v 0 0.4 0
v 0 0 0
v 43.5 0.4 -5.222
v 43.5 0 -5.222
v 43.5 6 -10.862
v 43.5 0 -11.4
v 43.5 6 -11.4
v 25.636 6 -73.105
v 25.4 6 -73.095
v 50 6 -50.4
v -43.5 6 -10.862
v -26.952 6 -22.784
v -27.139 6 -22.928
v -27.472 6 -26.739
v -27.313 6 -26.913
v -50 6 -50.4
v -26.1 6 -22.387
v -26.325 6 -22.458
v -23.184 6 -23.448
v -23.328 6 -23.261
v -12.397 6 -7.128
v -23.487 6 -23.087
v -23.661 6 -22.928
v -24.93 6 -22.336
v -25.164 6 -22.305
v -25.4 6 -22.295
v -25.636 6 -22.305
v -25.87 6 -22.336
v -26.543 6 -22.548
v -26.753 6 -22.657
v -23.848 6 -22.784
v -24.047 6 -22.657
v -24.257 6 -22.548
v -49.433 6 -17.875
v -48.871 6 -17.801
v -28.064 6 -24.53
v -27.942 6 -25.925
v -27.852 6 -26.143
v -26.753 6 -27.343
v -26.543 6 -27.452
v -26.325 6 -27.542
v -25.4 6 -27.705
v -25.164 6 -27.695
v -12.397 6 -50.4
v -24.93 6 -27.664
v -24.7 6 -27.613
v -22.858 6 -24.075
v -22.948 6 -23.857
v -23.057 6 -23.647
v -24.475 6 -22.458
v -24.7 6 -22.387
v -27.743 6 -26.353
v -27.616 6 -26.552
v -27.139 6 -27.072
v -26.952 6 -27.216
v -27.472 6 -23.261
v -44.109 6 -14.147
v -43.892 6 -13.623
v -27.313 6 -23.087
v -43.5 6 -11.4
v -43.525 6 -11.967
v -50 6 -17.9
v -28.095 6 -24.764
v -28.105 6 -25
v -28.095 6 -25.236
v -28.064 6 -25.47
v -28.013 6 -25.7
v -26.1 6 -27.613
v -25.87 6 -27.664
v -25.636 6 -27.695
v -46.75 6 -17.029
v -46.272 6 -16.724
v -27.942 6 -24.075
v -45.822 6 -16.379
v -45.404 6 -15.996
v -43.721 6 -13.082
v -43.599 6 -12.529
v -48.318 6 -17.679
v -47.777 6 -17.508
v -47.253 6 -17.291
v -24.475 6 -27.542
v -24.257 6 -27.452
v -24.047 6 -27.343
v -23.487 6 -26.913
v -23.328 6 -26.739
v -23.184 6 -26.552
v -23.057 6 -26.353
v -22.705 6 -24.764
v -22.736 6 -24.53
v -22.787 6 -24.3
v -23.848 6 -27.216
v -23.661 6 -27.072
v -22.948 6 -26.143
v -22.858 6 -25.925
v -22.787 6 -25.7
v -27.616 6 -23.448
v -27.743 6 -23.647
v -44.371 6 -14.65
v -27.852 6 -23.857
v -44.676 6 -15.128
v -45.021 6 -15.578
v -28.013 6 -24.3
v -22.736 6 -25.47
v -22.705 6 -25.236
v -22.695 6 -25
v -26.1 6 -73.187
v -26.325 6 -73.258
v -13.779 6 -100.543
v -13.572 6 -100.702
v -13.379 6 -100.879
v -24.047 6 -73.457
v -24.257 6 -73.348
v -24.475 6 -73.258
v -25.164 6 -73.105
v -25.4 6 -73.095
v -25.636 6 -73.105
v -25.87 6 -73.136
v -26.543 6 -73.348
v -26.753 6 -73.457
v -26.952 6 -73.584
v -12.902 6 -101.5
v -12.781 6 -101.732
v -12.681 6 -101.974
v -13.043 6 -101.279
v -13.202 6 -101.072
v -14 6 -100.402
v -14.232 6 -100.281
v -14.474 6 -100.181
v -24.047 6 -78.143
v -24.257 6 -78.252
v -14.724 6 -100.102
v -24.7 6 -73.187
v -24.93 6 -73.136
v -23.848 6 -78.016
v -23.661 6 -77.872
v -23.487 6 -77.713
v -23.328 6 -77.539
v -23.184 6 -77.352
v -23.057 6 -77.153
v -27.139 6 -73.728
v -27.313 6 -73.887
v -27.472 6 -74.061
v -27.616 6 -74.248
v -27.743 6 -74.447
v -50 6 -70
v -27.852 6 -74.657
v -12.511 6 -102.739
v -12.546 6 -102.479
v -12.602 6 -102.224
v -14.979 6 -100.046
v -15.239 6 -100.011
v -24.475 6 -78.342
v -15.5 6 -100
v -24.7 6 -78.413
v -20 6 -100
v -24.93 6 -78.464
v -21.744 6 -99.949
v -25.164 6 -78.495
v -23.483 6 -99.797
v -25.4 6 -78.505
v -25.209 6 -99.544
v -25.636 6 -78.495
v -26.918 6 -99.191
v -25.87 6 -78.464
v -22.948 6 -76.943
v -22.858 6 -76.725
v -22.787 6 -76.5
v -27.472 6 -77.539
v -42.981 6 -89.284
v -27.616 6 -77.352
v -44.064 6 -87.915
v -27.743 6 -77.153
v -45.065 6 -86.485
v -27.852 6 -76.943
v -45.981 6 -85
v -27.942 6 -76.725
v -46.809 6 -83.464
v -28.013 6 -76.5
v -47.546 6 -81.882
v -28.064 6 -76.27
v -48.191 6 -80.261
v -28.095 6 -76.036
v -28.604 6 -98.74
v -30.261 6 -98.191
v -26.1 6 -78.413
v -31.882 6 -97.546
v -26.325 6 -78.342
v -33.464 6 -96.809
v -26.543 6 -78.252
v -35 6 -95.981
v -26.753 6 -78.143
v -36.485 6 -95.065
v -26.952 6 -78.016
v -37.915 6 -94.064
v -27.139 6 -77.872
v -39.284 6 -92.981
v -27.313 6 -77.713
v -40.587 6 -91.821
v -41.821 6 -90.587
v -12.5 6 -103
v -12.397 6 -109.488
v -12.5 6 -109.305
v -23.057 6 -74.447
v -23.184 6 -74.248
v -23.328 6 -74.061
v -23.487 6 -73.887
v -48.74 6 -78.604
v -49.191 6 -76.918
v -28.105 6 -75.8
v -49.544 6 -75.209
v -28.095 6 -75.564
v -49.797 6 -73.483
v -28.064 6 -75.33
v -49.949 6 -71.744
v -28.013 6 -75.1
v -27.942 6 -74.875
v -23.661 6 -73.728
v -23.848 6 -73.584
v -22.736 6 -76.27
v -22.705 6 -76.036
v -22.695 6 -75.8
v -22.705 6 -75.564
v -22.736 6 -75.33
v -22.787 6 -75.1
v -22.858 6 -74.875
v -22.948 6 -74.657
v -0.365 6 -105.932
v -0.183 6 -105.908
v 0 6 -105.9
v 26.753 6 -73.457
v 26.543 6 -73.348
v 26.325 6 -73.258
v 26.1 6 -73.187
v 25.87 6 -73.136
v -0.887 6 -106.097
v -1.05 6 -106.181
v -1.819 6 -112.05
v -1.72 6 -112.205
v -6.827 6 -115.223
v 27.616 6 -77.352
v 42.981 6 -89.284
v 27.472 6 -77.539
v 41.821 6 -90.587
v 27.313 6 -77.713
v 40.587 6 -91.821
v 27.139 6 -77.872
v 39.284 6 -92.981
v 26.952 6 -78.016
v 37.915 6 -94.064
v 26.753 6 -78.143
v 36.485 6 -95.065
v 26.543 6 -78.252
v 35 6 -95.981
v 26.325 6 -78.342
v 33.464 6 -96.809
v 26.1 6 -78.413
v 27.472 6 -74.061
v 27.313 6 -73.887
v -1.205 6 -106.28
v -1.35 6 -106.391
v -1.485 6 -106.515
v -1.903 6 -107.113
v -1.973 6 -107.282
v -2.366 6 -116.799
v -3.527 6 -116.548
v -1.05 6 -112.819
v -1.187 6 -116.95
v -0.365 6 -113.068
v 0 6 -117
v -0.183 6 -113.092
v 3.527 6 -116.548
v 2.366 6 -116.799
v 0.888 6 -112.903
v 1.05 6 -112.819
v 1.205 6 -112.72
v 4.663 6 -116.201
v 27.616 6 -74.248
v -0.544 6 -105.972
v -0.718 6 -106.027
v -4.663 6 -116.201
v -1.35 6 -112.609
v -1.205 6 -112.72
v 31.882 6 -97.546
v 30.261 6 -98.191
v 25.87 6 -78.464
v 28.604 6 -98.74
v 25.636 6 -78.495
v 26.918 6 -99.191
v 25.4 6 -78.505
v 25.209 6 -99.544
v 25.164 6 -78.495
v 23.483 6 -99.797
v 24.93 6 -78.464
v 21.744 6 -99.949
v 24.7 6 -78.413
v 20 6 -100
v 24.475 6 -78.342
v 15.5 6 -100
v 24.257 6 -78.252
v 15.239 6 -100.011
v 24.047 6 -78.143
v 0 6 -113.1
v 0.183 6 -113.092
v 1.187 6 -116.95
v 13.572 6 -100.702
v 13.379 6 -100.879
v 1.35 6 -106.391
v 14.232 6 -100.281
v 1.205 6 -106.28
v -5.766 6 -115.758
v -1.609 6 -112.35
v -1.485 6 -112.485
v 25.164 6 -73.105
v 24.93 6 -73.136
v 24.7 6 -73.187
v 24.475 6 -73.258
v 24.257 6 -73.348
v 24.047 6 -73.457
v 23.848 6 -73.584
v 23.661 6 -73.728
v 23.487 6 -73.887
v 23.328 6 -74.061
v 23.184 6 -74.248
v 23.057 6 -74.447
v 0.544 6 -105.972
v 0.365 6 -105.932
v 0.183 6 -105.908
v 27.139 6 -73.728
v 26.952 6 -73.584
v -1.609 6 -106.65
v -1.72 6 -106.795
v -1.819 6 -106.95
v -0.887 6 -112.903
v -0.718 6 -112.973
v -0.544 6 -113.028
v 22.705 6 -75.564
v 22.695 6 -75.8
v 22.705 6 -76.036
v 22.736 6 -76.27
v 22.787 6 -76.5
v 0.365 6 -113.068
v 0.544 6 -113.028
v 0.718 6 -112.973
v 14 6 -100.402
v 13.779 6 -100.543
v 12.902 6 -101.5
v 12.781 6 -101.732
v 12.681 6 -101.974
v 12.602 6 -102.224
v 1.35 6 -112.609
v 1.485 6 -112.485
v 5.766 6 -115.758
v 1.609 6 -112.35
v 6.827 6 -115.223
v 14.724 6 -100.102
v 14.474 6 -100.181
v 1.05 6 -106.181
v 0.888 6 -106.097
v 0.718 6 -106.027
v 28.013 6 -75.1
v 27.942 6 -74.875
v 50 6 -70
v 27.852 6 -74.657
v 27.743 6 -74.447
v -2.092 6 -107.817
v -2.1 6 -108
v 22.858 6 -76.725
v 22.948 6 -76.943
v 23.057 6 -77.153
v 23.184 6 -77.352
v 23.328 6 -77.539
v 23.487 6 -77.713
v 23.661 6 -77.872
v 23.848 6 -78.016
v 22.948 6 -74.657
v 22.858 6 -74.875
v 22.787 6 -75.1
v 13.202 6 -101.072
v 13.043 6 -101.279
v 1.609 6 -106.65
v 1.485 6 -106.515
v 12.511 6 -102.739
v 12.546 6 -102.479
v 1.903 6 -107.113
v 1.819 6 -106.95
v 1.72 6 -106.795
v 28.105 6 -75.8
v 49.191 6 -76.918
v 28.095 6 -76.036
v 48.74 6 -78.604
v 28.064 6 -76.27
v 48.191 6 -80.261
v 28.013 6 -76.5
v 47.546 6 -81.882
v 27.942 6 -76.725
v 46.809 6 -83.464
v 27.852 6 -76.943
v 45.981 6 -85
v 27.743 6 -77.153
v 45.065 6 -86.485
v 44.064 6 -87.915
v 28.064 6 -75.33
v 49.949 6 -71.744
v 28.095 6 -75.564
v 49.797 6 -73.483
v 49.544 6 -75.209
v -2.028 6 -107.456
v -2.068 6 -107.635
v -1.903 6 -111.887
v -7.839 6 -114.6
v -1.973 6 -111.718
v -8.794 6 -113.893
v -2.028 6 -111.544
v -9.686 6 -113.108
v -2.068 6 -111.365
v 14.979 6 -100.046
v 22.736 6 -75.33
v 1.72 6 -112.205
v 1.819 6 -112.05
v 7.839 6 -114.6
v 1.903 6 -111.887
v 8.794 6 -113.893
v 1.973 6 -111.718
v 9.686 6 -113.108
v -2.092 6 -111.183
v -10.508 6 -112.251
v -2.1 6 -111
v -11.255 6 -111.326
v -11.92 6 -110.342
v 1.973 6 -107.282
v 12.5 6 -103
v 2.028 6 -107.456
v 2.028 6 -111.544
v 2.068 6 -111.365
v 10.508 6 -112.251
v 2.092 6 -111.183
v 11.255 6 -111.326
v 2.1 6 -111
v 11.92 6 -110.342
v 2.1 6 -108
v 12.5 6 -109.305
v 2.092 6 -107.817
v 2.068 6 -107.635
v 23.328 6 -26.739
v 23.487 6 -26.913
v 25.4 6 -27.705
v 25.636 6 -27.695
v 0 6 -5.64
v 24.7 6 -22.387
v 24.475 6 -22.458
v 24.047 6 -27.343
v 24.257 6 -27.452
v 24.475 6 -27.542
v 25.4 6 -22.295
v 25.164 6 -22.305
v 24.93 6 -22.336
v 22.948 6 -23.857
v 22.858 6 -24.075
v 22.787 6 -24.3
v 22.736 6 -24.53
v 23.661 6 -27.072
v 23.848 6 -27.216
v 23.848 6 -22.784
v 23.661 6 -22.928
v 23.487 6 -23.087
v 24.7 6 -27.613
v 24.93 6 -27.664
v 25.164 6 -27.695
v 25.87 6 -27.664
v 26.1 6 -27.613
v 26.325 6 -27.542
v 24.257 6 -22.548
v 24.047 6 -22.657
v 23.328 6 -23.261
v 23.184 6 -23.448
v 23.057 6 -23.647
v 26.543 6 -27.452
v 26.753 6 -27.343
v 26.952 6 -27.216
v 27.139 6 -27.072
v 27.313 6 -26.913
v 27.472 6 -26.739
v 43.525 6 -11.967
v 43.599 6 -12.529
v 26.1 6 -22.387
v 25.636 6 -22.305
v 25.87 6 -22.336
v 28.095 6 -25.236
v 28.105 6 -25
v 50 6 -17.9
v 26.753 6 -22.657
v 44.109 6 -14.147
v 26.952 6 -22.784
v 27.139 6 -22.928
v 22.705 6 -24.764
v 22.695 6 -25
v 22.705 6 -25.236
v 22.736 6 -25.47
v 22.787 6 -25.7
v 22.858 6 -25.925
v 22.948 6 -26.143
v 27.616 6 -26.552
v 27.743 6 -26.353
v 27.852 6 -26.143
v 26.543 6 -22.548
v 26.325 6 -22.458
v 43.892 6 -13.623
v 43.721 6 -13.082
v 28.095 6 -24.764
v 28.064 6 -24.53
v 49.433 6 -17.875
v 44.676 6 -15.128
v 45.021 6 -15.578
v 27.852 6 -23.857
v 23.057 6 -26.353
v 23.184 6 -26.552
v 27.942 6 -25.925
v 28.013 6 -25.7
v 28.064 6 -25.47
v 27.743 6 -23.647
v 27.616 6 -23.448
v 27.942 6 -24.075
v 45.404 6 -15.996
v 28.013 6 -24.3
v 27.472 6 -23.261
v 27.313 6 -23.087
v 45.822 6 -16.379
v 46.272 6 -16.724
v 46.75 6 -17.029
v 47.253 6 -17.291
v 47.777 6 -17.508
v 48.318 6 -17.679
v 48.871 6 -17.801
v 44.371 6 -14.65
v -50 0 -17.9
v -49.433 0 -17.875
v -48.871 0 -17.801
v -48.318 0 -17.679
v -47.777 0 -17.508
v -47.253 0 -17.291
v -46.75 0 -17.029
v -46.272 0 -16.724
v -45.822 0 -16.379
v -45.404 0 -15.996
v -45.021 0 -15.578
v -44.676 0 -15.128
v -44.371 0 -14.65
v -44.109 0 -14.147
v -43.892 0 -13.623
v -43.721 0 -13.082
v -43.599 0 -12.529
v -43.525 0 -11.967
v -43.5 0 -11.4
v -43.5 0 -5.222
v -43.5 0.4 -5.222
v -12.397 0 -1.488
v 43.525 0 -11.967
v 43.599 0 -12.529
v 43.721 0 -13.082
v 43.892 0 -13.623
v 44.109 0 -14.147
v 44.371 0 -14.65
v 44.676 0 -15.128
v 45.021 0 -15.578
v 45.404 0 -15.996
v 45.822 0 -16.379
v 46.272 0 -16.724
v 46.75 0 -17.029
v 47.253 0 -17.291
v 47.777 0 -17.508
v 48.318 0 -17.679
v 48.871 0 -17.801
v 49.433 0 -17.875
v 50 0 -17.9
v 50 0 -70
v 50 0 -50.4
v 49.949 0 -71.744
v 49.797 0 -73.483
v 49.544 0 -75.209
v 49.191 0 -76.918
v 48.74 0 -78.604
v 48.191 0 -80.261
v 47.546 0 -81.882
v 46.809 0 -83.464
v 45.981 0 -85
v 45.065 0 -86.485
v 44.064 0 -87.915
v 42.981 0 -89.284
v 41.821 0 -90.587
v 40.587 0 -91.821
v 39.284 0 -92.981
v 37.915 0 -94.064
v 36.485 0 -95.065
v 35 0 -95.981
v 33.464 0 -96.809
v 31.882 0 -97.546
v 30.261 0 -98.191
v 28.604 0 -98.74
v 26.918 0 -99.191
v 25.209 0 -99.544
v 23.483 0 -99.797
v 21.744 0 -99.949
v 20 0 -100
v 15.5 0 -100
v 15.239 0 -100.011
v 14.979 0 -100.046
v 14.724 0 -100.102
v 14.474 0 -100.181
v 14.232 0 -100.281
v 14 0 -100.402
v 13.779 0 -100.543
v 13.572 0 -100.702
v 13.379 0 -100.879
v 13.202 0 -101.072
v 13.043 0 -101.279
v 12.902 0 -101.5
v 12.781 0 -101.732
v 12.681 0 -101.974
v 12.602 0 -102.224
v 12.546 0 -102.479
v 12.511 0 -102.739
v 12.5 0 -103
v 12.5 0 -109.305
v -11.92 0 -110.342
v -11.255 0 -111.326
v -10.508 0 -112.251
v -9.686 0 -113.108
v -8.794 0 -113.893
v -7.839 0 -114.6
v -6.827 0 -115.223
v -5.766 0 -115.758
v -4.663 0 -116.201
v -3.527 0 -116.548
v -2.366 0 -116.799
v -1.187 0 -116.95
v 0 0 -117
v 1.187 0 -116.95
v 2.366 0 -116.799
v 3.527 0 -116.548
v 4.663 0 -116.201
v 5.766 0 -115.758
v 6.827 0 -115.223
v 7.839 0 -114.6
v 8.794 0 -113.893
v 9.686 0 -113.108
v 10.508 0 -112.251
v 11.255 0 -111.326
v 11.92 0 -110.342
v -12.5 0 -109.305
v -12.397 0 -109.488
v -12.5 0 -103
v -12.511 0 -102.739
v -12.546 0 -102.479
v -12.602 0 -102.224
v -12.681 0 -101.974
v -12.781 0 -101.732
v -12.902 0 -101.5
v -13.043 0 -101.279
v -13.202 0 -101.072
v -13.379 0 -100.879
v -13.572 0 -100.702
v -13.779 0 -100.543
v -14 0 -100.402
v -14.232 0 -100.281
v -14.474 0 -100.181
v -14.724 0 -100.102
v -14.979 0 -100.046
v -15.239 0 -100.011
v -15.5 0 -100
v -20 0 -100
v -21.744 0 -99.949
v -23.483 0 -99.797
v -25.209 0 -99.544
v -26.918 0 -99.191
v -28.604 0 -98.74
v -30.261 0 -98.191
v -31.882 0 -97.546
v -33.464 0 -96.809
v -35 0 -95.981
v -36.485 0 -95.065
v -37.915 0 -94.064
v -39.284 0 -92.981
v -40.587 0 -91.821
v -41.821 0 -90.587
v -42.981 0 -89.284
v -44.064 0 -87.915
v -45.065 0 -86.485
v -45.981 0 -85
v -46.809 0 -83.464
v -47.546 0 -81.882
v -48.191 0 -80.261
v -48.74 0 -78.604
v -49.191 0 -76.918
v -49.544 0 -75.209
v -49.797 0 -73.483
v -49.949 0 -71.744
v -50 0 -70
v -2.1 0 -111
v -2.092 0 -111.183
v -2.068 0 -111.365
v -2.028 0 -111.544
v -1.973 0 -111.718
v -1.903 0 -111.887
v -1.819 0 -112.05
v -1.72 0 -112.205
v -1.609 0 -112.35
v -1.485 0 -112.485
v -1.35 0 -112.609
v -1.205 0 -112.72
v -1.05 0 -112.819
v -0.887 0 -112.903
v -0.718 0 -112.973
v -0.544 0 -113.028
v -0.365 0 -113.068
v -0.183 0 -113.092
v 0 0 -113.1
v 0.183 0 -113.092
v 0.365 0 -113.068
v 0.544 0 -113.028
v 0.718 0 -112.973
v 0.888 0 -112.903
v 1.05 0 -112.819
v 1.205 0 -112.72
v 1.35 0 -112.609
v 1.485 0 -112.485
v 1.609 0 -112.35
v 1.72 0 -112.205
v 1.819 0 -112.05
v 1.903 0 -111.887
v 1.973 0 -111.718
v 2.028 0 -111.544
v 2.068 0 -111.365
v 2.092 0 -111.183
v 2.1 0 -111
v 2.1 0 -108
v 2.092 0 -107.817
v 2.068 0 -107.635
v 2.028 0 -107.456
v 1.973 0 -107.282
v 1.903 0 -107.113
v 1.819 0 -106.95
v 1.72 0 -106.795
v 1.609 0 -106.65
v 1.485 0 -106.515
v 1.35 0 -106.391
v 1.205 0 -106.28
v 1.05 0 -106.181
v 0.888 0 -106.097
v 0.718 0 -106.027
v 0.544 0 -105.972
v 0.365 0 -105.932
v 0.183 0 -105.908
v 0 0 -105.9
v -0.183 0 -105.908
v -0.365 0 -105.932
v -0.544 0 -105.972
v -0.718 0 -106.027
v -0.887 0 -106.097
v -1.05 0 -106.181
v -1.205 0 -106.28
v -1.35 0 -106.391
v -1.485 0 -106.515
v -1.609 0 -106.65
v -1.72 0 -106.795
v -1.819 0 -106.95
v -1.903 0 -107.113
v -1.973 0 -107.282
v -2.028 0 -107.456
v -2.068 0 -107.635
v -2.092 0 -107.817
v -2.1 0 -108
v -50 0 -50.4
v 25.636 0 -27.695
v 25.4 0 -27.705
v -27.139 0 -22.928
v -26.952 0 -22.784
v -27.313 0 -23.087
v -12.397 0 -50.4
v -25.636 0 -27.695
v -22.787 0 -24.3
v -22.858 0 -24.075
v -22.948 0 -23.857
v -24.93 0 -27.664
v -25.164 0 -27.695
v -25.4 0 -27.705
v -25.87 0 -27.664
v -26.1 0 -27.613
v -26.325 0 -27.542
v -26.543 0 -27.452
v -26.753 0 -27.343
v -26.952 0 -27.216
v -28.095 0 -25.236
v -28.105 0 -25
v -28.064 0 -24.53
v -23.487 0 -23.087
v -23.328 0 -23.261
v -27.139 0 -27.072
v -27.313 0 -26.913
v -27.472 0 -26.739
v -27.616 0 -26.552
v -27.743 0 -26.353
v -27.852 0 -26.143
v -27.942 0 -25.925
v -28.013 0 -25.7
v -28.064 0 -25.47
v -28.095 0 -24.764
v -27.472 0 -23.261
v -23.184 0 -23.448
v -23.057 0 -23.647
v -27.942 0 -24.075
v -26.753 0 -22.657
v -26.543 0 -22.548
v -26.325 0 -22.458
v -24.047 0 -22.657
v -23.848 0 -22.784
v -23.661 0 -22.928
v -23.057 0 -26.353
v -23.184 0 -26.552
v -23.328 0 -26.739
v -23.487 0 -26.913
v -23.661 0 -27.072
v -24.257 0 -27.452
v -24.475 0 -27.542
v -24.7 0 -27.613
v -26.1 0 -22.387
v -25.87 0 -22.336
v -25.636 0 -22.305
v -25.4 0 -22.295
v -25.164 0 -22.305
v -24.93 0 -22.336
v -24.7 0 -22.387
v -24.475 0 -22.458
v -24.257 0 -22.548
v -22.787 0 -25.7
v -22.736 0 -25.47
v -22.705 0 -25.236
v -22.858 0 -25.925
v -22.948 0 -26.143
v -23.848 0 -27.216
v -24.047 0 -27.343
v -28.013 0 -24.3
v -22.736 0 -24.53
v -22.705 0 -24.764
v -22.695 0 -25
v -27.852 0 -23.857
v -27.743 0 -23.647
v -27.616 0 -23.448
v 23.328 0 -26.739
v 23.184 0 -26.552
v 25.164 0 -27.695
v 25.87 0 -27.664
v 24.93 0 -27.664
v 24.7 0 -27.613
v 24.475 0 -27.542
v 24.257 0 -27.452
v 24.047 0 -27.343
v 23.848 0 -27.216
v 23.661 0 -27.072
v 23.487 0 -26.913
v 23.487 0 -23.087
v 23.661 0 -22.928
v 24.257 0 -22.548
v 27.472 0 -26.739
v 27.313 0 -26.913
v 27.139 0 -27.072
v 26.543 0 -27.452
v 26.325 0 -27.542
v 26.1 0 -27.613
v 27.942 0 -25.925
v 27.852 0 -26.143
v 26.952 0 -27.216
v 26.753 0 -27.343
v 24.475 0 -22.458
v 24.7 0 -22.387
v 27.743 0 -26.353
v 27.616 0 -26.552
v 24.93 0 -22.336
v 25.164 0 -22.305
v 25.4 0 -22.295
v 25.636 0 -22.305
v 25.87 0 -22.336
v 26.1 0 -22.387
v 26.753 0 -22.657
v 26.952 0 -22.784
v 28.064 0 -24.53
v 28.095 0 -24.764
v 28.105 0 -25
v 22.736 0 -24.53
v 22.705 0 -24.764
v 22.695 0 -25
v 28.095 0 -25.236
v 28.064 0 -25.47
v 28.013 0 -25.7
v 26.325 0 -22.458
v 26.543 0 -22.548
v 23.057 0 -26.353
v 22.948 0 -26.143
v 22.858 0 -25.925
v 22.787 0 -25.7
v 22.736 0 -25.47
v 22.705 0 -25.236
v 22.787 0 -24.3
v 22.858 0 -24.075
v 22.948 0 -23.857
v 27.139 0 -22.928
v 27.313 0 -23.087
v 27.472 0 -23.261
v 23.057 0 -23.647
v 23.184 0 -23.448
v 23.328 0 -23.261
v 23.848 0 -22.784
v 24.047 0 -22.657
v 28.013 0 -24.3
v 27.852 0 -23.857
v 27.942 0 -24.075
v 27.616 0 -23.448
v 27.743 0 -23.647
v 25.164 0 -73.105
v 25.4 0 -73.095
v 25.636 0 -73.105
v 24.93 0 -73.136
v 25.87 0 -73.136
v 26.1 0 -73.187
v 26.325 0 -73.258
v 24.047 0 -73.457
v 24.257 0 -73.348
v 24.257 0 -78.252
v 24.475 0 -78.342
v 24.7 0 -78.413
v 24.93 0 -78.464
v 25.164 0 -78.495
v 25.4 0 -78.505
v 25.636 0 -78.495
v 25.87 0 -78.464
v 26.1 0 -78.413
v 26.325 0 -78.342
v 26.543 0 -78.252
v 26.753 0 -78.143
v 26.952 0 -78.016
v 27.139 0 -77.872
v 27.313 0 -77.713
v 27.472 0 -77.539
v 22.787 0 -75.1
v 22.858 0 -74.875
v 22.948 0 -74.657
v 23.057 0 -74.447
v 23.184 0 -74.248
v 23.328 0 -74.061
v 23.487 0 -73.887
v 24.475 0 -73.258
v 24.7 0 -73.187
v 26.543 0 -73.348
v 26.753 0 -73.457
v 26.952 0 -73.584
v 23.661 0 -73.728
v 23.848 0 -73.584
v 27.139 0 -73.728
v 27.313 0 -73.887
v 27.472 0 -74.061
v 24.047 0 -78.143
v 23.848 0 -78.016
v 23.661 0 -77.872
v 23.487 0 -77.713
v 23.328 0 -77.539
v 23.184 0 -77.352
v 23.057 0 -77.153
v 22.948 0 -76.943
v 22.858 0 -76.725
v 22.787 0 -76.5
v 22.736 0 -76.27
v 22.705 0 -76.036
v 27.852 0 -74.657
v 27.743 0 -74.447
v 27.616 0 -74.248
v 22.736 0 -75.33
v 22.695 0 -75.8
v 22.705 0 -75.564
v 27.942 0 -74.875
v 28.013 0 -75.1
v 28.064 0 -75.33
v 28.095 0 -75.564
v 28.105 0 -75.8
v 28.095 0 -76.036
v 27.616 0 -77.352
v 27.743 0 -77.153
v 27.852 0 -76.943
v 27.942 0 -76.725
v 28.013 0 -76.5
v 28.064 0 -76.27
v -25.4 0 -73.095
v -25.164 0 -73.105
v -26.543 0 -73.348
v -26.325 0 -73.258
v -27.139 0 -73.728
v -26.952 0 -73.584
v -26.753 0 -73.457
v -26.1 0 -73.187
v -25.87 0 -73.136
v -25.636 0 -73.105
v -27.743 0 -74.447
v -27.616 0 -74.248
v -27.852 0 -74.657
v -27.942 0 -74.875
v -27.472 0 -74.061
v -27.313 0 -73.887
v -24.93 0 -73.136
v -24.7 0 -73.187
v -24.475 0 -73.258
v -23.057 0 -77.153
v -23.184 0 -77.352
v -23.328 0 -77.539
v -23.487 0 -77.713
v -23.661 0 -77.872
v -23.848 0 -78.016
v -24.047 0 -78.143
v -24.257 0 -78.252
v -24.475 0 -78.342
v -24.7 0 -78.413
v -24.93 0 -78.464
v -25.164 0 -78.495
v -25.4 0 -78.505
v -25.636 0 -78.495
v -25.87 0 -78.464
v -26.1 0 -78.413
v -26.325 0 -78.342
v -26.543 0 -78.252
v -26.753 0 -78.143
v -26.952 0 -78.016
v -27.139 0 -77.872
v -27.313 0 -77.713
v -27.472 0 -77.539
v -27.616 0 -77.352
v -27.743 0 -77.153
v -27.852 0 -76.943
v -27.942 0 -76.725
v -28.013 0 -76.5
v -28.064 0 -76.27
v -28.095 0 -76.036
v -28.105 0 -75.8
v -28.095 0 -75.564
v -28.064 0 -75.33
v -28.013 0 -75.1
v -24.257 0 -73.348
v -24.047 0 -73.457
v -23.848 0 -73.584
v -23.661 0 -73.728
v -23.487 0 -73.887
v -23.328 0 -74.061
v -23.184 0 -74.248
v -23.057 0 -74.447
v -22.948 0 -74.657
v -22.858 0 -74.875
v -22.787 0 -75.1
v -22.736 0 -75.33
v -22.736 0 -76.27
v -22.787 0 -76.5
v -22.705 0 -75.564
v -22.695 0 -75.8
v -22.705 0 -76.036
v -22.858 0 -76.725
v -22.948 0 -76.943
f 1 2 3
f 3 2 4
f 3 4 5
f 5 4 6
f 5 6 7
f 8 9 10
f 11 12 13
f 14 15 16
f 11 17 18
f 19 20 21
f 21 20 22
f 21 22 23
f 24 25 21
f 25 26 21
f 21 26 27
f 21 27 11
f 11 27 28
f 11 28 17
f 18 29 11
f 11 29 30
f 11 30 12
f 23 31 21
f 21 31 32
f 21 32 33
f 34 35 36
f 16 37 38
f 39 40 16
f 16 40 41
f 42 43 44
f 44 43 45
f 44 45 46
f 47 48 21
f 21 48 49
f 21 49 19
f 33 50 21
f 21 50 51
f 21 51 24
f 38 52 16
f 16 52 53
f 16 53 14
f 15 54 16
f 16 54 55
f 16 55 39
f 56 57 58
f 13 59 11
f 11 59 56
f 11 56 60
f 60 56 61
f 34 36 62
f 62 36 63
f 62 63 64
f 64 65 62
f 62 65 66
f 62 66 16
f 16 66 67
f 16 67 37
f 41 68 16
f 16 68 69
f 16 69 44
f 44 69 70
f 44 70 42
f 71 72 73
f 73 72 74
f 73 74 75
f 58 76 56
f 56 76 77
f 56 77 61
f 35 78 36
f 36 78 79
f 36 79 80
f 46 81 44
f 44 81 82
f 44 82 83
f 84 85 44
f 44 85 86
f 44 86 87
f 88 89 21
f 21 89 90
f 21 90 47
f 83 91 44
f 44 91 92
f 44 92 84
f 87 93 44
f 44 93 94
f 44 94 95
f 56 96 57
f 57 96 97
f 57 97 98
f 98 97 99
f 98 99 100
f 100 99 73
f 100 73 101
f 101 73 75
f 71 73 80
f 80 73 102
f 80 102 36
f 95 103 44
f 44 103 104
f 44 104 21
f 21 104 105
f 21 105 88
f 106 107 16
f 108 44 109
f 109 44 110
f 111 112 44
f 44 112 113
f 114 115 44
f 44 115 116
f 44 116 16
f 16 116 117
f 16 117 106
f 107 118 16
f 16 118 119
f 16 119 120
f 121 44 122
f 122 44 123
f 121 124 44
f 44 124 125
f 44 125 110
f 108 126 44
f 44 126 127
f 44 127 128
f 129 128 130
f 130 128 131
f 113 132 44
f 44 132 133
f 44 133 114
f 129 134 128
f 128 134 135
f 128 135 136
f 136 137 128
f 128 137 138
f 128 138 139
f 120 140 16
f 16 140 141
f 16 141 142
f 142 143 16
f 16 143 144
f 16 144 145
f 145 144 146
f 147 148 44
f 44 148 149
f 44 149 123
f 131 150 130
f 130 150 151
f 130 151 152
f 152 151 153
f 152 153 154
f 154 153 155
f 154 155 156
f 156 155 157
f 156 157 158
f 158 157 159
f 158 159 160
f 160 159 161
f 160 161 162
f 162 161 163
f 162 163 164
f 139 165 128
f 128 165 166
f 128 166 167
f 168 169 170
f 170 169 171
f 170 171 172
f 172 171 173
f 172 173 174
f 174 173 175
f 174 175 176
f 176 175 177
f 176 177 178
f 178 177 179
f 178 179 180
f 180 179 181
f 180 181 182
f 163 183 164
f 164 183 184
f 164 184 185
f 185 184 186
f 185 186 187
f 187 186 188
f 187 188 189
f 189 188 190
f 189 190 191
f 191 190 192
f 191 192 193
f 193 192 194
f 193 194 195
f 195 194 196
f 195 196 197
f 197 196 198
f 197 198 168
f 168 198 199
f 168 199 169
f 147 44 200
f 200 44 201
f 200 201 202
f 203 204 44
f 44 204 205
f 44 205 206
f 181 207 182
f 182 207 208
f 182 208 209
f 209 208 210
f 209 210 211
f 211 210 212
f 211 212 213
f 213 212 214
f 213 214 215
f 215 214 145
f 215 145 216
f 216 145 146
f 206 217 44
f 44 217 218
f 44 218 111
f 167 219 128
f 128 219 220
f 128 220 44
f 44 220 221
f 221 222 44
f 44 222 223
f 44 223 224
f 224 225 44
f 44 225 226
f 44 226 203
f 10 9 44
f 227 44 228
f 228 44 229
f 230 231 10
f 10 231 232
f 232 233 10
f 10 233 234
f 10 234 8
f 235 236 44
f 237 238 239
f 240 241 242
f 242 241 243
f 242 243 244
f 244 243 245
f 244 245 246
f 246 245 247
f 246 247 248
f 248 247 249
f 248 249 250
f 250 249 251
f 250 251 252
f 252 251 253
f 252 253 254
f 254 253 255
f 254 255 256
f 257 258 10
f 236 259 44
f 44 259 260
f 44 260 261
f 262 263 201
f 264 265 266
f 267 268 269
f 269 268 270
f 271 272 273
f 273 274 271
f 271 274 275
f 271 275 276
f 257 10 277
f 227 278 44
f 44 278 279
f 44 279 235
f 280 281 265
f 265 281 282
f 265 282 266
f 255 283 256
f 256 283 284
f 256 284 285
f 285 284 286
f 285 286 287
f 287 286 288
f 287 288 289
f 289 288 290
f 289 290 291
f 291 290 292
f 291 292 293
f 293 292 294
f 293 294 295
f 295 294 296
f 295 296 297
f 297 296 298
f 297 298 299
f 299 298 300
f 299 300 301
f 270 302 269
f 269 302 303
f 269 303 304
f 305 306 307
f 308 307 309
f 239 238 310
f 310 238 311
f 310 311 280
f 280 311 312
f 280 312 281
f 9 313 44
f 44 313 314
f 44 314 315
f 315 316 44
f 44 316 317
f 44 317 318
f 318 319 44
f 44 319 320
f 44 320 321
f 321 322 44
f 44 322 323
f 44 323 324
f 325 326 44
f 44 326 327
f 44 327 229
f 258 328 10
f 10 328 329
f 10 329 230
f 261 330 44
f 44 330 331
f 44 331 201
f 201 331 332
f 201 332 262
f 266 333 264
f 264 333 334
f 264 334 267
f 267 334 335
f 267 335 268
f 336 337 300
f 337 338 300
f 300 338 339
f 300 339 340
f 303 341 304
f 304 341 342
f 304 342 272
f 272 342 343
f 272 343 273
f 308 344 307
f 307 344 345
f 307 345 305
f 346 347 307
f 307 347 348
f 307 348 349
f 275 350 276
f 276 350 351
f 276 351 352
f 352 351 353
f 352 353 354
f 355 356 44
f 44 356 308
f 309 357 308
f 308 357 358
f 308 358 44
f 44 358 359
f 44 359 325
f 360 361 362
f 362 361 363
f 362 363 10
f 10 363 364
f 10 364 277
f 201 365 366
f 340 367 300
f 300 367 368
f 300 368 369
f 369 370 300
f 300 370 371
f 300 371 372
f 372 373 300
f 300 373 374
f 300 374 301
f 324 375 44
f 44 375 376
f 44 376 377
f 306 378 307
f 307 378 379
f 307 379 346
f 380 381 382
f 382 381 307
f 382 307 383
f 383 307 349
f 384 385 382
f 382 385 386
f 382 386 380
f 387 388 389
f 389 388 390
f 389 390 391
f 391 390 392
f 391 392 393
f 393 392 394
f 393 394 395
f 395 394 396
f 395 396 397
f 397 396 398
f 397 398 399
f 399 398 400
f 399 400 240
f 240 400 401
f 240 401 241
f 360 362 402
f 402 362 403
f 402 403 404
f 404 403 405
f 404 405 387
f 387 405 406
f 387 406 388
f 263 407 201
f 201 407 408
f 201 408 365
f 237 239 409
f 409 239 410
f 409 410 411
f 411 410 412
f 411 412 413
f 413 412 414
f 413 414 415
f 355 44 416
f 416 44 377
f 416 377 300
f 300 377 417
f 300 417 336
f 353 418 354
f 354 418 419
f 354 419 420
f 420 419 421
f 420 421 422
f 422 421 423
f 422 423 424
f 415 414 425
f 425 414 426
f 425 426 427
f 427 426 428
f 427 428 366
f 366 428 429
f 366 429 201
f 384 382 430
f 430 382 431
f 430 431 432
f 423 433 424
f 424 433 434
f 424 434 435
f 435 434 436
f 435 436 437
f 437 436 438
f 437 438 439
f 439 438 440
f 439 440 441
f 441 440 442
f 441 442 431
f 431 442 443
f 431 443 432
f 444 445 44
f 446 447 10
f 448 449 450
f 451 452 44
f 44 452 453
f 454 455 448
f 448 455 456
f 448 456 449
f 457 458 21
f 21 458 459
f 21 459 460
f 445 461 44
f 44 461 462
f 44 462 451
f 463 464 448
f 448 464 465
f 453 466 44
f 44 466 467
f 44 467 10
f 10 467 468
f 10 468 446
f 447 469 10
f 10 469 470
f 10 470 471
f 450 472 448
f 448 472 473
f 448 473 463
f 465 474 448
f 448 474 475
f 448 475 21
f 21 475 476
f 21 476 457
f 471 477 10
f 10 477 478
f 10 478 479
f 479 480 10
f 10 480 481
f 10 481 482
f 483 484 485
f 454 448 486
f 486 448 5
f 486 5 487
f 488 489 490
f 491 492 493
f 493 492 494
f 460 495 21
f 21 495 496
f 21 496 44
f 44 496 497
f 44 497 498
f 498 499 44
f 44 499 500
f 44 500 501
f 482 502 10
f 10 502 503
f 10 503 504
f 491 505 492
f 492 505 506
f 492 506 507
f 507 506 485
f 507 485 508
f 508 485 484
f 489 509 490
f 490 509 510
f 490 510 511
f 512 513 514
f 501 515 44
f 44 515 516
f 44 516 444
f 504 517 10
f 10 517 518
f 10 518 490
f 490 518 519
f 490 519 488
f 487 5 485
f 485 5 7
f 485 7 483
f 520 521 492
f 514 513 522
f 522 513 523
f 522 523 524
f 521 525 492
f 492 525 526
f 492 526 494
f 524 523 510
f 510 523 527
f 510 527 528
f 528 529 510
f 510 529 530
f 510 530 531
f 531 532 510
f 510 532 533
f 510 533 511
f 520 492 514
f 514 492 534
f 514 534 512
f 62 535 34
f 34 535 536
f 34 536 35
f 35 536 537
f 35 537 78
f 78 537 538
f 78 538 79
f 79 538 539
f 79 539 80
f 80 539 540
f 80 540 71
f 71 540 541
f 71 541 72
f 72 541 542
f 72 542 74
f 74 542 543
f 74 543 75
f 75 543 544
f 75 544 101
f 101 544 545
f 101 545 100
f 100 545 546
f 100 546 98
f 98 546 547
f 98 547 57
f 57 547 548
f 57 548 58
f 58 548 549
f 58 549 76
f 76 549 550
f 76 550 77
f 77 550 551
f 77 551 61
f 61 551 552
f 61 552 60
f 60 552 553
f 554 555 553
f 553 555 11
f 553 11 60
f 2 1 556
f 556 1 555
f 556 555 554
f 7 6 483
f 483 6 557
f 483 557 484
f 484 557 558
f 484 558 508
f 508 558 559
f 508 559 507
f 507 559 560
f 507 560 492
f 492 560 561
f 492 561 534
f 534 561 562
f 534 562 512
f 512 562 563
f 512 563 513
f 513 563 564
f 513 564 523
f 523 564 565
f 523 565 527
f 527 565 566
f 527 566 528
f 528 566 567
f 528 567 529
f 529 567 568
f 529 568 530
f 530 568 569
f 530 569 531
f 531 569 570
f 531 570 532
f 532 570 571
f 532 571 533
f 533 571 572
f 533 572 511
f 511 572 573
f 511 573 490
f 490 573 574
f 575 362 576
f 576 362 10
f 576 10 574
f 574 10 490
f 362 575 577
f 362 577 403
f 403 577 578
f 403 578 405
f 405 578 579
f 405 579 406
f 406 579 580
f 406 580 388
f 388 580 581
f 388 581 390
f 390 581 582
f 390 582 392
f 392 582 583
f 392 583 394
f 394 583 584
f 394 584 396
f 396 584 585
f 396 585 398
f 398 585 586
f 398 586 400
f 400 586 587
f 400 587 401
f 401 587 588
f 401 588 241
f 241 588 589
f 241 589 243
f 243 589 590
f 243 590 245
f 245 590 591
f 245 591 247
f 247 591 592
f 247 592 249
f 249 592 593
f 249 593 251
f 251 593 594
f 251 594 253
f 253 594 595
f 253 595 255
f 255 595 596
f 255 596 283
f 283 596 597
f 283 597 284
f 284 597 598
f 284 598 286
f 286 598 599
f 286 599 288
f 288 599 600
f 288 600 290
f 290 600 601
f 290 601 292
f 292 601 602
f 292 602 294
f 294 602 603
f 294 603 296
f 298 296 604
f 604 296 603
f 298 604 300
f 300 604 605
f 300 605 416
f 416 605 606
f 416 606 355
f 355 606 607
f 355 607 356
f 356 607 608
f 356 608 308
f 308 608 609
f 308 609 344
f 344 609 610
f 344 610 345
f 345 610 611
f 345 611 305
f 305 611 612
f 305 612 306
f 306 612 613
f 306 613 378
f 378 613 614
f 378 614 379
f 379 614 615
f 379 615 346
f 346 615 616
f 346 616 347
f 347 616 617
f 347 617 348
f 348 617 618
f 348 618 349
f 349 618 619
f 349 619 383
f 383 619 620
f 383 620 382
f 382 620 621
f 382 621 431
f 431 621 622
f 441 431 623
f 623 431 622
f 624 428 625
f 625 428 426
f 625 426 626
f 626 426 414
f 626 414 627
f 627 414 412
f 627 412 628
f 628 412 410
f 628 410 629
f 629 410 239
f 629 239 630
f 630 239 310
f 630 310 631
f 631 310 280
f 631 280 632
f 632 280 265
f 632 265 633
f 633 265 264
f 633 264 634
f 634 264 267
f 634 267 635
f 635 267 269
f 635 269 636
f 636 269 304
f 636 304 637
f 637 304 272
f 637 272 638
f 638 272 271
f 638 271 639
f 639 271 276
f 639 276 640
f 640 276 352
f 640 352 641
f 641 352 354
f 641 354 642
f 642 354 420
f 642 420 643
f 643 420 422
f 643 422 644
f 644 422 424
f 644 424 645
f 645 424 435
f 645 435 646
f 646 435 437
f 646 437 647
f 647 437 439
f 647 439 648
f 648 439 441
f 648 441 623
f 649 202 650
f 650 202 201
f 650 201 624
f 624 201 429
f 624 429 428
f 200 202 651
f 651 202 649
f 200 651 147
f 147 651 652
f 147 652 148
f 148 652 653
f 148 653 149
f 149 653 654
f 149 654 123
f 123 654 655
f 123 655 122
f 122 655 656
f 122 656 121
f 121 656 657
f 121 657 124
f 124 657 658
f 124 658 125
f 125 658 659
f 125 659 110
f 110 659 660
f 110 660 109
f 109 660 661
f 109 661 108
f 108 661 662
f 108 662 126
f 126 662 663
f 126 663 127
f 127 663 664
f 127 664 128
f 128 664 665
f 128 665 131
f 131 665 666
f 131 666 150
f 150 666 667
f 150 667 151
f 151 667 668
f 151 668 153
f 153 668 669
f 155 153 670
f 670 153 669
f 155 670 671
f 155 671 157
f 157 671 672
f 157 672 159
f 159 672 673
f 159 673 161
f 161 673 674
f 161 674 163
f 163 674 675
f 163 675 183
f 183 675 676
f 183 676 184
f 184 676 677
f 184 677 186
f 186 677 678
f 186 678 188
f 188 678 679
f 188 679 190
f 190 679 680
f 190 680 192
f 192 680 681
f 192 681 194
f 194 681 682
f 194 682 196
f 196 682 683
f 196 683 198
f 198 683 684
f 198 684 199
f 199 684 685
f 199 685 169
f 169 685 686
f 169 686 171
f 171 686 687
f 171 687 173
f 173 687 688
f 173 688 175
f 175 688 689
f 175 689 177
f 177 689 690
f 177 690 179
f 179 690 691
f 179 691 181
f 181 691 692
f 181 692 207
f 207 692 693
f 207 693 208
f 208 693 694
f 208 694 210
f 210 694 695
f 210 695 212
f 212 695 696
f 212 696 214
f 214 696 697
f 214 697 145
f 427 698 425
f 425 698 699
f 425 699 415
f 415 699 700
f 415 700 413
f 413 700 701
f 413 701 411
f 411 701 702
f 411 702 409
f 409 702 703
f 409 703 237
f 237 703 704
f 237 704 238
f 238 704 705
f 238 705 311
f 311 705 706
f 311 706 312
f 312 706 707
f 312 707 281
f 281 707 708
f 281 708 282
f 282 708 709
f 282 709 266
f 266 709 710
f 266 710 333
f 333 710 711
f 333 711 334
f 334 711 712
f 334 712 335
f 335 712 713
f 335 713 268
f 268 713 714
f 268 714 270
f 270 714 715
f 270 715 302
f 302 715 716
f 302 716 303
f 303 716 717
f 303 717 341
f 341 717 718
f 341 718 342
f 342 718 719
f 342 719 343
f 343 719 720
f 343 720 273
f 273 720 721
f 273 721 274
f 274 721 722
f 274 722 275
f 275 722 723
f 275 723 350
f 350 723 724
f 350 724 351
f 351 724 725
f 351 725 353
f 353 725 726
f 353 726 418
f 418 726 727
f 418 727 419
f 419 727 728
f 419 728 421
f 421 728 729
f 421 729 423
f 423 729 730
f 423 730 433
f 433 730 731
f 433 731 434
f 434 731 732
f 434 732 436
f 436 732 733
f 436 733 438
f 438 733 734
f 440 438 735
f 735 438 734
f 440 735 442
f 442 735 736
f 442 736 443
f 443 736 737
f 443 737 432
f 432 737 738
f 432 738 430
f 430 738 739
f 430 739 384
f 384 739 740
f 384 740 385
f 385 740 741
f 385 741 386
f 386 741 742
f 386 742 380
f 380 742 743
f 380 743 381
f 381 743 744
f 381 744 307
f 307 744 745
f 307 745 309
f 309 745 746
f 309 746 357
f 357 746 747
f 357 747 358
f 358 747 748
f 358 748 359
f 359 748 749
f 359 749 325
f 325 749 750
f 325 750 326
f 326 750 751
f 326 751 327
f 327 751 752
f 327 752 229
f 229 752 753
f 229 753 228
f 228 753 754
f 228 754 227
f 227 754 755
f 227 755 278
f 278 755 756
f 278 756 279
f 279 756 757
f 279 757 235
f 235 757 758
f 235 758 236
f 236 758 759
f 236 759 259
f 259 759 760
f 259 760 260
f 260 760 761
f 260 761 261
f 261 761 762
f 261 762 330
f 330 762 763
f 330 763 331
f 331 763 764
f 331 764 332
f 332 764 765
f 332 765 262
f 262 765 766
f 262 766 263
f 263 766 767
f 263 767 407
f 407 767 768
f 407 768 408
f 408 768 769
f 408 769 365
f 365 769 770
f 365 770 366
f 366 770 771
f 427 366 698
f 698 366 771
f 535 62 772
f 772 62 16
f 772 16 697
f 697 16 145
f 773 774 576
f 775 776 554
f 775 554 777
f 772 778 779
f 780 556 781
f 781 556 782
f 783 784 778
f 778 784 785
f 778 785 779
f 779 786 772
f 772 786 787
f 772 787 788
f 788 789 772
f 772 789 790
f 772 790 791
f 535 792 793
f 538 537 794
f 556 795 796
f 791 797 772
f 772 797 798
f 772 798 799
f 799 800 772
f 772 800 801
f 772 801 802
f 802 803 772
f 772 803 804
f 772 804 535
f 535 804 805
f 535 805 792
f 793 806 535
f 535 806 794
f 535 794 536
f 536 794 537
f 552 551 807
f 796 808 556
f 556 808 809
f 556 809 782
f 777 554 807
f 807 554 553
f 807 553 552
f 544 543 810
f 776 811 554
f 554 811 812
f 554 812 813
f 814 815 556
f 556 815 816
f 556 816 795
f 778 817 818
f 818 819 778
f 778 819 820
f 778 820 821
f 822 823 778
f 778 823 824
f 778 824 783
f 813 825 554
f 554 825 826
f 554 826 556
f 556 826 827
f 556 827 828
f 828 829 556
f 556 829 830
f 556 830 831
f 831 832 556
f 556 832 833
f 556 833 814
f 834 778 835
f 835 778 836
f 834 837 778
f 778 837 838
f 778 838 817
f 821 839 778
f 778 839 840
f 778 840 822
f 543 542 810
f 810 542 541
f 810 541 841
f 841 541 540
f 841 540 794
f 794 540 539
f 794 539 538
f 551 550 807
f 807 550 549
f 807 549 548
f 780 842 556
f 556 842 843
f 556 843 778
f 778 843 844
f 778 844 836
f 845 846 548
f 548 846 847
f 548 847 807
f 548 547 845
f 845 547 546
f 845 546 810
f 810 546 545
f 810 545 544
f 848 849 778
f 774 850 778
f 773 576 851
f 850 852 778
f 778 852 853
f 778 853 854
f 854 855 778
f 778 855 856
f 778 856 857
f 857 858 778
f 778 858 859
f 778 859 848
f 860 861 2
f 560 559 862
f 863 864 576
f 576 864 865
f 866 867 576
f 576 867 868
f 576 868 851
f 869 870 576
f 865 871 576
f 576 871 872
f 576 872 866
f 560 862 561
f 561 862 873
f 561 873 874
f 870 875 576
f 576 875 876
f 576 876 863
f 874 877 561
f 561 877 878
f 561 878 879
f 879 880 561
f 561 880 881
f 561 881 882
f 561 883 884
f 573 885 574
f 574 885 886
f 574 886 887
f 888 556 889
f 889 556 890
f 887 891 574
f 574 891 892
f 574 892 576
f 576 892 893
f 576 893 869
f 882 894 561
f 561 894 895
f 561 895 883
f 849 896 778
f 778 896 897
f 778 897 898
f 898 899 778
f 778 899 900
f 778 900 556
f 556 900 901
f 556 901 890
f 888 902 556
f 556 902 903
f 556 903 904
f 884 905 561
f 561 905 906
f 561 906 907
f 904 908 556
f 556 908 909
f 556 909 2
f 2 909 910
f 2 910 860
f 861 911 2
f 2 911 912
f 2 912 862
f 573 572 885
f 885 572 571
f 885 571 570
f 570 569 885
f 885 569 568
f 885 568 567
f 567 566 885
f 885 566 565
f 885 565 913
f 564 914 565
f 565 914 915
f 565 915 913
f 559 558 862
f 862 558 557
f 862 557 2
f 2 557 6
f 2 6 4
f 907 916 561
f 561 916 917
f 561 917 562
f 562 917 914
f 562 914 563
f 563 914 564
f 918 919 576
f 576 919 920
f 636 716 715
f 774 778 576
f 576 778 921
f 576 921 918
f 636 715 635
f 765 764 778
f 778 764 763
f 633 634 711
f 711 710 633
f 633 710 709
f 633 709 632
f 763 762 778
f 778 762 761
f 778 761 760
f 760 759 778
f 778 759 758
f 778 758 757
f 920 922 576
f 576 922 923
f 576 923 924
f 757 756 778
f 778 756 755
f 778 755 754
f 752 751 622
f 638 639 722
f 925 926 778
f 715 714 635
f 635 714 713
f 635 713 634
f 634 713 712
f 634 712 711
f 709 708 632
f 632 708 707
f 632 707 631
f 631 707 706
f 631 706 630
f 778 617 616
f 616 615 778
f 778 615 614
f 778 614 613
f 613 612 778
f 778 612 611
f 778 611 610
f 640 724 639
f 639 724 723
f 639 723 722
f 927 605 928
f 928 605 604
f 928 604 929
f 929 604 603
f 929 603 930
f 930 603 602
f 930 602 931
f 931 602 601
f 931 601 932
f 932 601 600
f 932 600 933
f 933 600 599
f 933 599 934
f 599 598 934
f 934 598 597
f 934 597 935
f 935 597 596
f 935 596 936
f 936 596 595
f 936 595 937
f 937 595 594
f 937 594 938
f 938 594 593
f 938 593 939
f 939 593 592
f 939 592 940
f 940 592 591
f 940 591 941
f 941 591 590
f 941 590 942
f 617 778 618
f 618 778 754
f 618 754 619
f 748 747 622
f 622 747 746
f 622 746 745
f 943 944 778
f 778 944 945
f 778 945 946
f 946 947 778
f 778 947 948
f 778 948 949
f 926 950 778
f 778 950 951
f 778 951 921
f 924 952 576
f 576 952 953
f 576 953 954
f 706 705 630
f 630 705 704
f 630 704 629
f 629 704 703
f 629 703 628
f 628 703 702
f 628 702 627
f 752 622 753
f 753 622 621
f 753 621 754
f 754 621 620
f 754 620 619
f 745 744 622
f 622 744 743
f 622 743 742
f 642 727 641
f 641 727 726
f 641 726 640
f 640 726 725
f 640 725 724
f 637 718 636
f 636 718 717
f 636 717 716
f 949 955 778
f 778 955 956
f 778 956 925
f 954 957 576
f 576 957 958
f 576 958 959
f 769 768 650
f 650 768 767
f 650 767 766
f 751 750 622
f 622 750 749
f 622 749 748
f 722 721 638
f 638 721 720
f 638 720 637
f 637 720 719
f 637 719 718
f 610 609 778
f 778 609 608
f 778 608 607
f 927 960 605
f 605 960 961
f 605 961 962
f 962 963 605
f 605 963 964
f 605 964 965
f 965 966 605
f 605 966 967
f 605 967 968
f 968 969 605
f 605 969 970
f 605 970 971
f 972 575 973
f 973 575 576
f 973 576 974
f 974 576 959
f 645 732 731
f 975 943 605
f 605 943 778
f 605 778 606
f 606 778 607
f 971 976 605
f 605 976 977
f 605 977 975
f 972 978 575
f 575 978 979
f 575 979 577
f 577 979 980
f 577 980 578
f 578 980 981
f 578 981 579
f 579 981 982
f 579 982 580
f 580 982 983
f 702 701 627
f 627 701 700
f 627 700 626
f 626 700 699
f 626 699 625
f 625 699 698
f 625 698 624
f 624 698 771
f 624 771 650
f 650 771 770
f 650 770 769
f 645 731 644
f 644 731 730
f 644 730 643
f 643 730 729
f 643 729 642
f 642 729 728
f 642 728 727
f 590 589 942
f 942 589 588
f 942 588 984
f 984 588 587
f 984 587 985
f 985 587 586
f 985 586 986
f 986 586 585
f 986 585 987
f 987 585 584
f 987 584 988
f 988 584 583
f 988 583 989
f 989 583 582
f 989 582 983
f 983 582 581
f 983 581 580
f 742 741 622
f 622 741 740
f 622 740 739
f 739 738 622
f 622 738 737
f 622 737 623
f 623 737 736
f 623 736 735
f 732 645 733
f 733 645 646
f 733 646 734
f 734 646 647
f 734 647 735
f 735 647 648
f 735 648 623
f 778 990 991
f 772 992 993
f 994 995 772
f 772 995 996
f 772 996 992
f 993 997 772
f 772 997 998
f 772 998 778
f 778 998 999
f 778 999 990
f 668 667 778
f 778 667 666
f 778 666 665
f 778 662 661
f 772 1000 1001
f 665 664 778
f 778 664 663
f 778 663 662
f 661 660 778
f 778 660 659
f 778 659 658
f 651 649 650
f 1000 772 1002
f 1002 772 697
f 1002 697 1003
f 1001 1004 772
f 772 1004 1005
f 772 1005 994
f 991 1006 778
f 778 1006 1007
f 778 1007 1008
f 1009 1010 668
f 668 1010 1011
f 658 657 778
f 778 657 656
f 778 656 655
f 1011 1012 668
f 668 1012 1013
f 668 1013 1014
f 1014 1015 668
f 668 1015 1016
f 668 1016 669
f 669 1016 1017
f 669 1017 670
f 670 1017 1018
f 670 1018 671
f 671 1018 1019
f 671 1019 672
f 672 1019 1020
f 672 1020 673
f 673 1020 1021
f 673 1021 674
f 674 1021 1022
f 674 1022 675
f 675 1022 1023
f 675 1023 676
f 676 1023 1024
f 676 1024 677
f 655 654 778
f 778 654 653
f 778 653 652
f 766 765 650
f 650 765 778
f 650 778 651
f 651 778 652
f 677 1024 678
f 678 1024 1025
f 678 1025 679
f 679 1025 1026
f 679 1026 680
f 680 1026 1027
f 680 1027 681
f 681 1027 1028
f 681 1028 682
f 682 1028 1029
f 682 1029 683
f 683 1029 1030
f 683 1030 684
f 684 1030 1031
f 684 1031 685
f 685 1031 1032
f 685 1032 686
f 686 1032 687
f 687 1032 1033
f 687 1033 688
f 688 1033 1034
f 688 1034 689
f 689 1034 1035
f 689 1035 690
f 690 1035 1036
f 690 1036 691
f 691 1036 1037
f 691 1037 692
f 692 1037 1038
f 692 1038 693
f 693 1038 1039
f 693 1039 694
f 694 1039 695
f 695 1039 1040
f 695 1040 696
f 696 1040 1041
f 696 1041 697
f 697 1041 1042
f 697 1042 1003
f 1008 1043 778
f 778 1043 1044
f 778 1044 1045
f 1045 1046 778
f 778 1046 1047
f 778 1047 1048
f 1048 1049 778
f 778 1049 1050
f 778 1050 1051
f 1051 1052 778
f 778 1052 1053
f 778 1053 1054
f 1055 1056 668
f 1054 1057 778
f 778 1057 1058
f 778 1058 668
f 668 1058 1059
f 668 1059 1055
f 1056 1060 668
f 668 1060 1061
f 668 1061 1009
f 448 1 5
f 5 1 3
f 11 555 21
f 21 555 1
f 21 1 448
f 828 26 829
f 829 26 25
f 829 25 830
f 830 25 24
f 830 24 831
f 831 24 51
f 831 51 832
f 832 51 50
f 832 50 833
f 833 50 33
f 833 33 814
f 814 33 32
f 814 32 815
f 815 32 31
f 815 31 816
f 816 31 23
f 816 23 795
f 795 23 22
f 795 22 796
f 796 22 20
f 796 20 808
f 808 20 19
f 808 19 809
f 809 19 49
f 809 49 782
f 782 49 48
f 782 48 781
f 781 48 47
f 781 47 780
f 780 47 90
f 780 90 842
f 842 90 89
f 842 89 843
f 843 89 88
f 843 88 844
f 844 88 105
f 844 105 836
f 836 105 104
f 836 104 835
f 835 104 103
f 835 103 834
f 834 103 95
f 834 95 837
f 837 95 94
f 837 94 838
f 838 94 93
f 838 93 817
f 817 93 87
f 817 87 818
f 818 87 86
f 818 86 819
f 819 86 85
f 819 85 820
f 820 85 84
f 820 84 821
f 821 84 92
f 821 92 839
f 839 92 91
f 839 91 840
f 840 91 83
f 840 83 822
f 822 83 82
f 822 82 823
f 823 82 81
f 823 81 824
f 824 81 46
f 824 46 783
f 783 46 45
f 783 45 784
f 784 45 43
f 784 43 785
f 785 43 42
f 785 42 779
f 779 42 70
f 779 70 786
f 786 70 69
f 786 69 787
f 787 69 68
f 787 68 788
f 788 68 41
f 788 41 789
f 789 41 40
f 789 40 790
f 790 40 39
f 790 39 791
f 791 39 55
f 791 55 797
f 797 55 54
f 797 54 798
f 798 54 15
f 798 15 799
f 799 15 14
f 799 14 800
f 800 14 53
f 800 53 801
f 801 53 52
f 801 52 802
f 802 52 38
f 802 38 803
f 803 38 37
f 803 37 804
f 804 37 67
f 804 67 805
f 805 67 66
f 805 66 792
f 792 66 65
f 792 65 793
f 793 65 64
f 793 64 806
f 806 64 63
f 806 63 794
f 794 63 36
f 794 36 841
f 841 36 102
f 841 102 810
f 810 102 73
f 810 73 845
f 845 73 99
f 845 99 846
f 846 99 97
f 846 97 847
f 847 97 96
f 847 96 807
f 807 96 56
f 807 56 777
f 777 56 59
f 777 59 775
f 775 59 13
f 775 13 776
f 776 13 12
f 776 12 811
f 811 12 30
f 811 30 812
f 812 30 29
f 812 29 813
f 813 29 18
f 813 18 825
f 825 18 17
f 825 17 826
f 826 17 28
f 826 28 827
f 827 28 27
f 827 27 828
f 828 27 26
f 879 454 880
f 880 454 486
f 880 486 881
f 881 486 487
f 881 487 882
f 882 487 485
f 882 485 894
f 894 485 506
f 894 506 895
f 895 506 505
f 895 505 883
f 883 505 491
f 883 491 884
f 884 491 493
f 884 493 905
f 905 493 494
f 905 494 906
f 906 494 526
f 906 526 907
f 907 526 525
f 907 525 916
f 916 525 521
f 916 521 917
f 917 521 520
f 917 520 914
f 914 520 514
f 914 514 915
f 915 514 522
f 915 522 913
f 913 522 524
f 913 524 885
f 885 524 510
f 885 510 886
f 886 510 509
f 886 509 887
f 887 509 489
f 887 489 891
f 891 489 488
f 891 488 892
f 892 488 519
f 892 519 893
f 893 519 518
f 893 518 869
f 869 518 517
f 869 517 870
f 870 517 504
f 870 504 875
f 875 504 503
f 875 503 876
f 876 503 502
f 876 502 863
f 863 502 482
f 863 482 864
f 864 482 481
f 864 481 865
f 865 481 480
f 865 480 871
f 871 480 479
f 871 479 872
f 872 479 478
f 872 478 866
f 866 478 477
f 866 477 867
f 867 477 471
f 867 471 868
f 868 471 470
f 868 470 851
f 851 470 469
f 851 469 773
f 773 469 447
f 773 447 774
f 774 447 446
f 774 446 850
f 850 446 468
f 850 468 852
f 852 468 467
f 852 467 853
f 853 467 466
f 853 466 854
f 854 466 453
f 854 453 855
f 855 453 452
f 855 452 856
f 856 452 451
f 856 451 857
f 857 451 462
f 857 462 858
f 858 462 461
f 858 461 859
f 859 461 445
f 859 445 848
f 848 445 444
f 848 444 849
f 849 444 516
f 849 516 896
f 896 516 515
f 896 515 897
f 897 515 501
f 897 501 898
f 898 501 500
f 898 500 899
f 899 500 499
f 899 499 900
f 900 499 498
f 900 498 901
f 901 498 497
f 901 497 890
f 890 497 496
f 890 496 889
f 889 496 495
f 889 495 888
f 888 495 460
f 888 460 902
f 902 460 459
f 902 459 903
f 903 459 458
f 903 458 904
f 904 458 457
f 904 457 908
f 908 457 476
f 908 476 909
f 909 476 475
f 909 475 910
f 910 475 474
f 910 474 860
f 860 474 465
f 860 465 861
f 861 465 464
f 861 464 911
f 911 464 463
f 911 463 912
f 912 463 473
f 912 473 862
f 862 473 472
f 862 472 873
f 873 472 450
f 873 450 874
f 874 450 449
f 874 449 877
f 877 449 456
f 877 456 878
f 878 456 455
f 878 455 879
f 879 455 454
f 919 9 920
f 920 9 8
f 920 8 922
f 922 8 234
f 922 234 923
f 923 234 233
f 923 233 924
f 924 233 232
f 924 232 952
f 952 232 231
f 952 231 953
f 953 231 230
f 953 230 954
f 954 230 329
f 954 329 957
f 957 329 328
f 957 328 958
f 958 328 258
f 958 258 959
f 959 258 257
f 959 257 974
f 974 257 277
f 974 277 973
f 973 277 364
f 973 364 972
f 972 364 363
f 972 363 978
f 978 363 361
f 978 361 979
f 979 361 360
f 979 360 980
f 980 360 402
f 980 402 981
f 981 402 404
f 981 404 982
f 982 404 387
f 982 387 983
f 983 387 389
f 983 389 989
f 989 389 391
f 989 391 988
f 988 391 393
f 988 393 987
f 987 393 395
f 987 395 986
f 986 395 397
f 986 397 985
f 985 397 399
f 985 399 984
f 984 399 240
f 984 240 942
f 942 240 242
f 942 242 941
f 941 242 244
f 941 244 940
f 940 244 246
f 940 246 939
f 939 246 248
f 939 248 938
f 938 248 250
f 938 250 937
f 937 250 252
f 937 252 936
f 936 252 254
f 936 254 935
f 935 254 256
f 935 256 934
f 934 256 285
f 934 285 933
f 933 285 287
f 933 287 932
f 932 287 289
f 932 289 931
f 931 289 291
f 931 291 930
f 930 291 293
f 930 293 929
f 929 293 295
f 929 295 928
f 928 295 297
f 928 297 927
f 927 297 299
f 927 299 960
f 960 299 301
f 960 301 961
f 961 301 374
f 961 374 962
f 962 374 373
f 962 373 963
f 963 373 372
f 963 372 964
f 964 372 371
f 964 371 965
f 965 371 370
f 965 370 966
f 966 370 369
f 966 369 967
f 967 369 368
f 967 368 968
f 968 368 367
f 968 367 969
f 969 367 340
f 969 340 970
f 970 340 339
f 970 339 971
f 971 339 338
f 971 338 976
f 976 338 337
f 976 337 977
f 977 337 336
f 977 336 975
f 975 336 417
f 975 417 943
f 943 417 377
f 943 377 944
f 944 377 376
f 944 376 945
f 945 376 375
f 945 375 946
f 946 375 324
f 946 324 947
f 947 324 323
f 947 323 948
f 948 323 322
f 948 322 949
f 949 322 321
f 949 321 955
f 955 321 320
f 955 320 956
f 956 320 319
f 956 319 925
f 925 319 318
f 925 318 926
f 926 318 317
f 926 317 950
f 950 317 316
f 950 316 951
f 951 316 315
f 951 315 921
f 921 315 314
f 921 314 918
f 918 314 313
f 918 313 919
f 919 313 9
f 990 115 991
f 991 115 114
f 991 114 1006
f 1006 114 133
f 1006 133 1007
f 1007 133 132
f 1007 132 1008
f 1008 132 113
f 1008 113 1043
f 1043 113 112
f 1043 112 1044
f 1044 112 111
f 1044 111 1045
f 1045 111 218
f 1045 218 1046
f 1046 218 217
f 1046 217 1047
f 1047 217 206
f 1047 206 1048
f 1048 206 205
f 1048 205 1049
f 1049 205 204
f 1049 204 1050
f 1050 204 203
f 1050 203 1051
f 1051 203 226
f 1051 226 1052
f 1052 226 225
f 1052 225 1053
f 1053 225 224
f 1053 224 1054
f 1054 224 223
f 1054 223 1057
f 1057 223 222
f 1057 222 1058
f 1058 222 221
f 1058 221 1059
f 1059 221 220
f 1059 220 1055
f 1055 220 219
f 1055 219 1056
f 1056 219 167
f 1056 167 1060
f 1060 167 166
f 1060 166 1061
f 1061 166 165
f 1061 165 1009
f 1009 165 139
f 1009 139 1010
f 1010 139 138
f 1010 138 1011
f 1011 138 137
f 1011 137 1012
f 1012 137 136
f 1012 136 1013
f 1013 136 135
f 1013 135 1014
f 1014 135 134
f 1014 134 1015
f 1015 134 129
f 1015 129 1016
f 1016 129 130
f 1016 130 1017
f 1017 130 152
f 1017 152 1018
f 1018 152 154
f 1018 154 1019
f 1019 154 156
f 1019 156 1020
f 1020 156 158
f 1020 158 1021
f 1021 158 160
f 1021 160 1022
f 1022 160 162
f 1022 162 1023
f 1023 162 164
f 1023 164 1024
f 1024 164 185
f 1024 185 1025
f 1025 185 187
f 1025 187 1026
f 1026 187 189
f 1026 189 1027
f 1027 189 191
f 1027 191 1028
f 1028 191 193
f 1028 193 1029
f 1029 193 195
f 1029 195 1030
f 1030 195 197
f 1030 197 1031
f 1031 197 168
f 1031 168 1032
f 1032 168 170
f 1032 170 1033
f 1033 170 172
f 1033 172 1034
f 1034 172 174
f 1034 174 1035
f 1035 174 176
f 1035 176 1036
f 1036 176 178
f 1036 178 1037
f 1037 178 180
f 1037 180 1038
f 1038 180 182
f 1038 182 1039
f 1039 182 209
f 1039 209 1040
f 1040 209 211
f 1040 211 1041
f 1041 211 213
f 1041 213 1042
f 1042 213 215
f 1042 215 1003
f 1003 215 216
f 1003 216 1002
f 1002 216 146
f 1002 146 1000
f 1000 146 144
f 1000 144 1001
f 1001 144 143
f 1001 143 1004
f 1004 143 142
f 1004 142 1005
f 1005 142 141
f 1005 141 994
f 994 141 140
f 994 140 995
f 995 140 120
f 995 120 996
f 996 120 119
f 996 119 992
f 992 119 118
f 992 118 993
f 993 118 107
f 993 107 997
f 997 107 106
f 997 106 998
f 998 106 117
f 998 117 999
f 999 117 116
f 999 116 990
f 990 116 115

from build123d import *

# Parameters (mm, degrees)
BOSS_EXTRUDE1_DEPTH     = 6
CUT_EXTRUDE1_DEPTH      = 43.812285079
CUT_EXTRUDE2_DEPTH      = 43.812285079
F_1_4_28_TAPPED_HOLE1_D = 5.4102


with BuildPart() as part:
    # Sketch1 → Boss-Extrude1 (new body)
    with BuildSketch(Plane(origin=(0, 0, 0), x_dir=(1, 0, 0), z_dir=(0, 1, 0))):
        with BuildLine():
            ThreePointArc((-43.5, 11.4), (-45.403805922, 15.996194078), (-50, 17.9))
            Line((-50, 17.9), (-50, 70))
            ThreePointArc((-50, 70), (-41.213203436, 91.213203436), (-20, 100))
            Line((-20, 100), (-15.5, 100))
            ThreePointArc((-15.5, 100), (-13.378679656, 100.878679656), (-12.5, 103))
            Line((-12.5, 103), (-12.5, 109.304760106))
            ThreePointArc((-12.5, 109.304760106), (0, 117), (12.5, 109.304760106))
            Line((12.5, 109.304760106), (12.5, 103))
            ThreePointArc((12.5, 103), (13.378679656, 100.878679656), (15.5, 100))
            Line((15.5, 100), (20, 100))
            ThreePointArc((20, 100), (41.213203436, 91.213203436), (50, 70))
            Line((50, 70), (50, 17.9))
            ThreePointArc((50, 17.9), (45.403805922, 15.996194078), (43.5, 11.4))
            Line((43.5, 11.4), (43.5, 5.221716559))
            Line((43.5, 5.221716559), (0, 0))
            Line((0, 0), (-43.5, 5.221716559))
            Line((-43.5, 5.221716559), (-43.5, 11.4))
        make_face()
        with BuildLine():
            ThreePointArc((2.1, 111), (0, 113.1), (-2.1, 111))
            Line((-2.1, 111), (-2.1, 108))
            ThreePointArc((-2.1, 108), (0, 105.9), (2.1, 108))
            Line((2.1, 108), (2.1, 111))
        make_face(mode=Mode.SUBTRACT)
    extrude(amount=BOSS_EXTRUDE1_DEPTH)

    # Sketch2 → Cut-Extrude1 (cut, along a direction that is not the sketch's normal)
    with BuildSketch(Plane(origin=(0, 0, 0), x_dir=(0, 0, -1), z_dir=(1, 0, 0))):
        Polygon((5.640200242, 6), (0, 0.400000131), (0, 6), align=None)
    extrude(amount=CUT_EXTRUDE1_DEPTH, dir=(0.9928722028940861, 0, -0.11918384420820177), mode=Mode.SUBTRACT)

    # Sketch2<2> → Cut-Extrude2 (cut, along a direction that is not the sketch's normal)
    with BuildSketch(Plane(origin=(0, 0, 0), x_dir=(0, 0, -1), z_dir=(1, 0, 0))):
        Polygon((5.640200242, 6), (0, 0.400000131), (0, 6), align=None)
    extrude(amount=-CUT_EXTRUDE2_DEPTH, dir=(0.9928722028940861, 0, 0.11918384420820147), mode=Mode.SUBTRACT)

    # 1/4-28 Tapped Hole1 (through all)
    with Locations(Plane(origin=(0, 6, 0), x_dir=(1, 0, 0), z_dir=(0, 1, 0))):
        with Locations((-25.4, 75.8), (25.4, 75.8), (25.4, 25), (-25.4, 25)):
            Hole(F_1_4_28_TAPPED_HOLE1_D / 2)


solid = part.part
